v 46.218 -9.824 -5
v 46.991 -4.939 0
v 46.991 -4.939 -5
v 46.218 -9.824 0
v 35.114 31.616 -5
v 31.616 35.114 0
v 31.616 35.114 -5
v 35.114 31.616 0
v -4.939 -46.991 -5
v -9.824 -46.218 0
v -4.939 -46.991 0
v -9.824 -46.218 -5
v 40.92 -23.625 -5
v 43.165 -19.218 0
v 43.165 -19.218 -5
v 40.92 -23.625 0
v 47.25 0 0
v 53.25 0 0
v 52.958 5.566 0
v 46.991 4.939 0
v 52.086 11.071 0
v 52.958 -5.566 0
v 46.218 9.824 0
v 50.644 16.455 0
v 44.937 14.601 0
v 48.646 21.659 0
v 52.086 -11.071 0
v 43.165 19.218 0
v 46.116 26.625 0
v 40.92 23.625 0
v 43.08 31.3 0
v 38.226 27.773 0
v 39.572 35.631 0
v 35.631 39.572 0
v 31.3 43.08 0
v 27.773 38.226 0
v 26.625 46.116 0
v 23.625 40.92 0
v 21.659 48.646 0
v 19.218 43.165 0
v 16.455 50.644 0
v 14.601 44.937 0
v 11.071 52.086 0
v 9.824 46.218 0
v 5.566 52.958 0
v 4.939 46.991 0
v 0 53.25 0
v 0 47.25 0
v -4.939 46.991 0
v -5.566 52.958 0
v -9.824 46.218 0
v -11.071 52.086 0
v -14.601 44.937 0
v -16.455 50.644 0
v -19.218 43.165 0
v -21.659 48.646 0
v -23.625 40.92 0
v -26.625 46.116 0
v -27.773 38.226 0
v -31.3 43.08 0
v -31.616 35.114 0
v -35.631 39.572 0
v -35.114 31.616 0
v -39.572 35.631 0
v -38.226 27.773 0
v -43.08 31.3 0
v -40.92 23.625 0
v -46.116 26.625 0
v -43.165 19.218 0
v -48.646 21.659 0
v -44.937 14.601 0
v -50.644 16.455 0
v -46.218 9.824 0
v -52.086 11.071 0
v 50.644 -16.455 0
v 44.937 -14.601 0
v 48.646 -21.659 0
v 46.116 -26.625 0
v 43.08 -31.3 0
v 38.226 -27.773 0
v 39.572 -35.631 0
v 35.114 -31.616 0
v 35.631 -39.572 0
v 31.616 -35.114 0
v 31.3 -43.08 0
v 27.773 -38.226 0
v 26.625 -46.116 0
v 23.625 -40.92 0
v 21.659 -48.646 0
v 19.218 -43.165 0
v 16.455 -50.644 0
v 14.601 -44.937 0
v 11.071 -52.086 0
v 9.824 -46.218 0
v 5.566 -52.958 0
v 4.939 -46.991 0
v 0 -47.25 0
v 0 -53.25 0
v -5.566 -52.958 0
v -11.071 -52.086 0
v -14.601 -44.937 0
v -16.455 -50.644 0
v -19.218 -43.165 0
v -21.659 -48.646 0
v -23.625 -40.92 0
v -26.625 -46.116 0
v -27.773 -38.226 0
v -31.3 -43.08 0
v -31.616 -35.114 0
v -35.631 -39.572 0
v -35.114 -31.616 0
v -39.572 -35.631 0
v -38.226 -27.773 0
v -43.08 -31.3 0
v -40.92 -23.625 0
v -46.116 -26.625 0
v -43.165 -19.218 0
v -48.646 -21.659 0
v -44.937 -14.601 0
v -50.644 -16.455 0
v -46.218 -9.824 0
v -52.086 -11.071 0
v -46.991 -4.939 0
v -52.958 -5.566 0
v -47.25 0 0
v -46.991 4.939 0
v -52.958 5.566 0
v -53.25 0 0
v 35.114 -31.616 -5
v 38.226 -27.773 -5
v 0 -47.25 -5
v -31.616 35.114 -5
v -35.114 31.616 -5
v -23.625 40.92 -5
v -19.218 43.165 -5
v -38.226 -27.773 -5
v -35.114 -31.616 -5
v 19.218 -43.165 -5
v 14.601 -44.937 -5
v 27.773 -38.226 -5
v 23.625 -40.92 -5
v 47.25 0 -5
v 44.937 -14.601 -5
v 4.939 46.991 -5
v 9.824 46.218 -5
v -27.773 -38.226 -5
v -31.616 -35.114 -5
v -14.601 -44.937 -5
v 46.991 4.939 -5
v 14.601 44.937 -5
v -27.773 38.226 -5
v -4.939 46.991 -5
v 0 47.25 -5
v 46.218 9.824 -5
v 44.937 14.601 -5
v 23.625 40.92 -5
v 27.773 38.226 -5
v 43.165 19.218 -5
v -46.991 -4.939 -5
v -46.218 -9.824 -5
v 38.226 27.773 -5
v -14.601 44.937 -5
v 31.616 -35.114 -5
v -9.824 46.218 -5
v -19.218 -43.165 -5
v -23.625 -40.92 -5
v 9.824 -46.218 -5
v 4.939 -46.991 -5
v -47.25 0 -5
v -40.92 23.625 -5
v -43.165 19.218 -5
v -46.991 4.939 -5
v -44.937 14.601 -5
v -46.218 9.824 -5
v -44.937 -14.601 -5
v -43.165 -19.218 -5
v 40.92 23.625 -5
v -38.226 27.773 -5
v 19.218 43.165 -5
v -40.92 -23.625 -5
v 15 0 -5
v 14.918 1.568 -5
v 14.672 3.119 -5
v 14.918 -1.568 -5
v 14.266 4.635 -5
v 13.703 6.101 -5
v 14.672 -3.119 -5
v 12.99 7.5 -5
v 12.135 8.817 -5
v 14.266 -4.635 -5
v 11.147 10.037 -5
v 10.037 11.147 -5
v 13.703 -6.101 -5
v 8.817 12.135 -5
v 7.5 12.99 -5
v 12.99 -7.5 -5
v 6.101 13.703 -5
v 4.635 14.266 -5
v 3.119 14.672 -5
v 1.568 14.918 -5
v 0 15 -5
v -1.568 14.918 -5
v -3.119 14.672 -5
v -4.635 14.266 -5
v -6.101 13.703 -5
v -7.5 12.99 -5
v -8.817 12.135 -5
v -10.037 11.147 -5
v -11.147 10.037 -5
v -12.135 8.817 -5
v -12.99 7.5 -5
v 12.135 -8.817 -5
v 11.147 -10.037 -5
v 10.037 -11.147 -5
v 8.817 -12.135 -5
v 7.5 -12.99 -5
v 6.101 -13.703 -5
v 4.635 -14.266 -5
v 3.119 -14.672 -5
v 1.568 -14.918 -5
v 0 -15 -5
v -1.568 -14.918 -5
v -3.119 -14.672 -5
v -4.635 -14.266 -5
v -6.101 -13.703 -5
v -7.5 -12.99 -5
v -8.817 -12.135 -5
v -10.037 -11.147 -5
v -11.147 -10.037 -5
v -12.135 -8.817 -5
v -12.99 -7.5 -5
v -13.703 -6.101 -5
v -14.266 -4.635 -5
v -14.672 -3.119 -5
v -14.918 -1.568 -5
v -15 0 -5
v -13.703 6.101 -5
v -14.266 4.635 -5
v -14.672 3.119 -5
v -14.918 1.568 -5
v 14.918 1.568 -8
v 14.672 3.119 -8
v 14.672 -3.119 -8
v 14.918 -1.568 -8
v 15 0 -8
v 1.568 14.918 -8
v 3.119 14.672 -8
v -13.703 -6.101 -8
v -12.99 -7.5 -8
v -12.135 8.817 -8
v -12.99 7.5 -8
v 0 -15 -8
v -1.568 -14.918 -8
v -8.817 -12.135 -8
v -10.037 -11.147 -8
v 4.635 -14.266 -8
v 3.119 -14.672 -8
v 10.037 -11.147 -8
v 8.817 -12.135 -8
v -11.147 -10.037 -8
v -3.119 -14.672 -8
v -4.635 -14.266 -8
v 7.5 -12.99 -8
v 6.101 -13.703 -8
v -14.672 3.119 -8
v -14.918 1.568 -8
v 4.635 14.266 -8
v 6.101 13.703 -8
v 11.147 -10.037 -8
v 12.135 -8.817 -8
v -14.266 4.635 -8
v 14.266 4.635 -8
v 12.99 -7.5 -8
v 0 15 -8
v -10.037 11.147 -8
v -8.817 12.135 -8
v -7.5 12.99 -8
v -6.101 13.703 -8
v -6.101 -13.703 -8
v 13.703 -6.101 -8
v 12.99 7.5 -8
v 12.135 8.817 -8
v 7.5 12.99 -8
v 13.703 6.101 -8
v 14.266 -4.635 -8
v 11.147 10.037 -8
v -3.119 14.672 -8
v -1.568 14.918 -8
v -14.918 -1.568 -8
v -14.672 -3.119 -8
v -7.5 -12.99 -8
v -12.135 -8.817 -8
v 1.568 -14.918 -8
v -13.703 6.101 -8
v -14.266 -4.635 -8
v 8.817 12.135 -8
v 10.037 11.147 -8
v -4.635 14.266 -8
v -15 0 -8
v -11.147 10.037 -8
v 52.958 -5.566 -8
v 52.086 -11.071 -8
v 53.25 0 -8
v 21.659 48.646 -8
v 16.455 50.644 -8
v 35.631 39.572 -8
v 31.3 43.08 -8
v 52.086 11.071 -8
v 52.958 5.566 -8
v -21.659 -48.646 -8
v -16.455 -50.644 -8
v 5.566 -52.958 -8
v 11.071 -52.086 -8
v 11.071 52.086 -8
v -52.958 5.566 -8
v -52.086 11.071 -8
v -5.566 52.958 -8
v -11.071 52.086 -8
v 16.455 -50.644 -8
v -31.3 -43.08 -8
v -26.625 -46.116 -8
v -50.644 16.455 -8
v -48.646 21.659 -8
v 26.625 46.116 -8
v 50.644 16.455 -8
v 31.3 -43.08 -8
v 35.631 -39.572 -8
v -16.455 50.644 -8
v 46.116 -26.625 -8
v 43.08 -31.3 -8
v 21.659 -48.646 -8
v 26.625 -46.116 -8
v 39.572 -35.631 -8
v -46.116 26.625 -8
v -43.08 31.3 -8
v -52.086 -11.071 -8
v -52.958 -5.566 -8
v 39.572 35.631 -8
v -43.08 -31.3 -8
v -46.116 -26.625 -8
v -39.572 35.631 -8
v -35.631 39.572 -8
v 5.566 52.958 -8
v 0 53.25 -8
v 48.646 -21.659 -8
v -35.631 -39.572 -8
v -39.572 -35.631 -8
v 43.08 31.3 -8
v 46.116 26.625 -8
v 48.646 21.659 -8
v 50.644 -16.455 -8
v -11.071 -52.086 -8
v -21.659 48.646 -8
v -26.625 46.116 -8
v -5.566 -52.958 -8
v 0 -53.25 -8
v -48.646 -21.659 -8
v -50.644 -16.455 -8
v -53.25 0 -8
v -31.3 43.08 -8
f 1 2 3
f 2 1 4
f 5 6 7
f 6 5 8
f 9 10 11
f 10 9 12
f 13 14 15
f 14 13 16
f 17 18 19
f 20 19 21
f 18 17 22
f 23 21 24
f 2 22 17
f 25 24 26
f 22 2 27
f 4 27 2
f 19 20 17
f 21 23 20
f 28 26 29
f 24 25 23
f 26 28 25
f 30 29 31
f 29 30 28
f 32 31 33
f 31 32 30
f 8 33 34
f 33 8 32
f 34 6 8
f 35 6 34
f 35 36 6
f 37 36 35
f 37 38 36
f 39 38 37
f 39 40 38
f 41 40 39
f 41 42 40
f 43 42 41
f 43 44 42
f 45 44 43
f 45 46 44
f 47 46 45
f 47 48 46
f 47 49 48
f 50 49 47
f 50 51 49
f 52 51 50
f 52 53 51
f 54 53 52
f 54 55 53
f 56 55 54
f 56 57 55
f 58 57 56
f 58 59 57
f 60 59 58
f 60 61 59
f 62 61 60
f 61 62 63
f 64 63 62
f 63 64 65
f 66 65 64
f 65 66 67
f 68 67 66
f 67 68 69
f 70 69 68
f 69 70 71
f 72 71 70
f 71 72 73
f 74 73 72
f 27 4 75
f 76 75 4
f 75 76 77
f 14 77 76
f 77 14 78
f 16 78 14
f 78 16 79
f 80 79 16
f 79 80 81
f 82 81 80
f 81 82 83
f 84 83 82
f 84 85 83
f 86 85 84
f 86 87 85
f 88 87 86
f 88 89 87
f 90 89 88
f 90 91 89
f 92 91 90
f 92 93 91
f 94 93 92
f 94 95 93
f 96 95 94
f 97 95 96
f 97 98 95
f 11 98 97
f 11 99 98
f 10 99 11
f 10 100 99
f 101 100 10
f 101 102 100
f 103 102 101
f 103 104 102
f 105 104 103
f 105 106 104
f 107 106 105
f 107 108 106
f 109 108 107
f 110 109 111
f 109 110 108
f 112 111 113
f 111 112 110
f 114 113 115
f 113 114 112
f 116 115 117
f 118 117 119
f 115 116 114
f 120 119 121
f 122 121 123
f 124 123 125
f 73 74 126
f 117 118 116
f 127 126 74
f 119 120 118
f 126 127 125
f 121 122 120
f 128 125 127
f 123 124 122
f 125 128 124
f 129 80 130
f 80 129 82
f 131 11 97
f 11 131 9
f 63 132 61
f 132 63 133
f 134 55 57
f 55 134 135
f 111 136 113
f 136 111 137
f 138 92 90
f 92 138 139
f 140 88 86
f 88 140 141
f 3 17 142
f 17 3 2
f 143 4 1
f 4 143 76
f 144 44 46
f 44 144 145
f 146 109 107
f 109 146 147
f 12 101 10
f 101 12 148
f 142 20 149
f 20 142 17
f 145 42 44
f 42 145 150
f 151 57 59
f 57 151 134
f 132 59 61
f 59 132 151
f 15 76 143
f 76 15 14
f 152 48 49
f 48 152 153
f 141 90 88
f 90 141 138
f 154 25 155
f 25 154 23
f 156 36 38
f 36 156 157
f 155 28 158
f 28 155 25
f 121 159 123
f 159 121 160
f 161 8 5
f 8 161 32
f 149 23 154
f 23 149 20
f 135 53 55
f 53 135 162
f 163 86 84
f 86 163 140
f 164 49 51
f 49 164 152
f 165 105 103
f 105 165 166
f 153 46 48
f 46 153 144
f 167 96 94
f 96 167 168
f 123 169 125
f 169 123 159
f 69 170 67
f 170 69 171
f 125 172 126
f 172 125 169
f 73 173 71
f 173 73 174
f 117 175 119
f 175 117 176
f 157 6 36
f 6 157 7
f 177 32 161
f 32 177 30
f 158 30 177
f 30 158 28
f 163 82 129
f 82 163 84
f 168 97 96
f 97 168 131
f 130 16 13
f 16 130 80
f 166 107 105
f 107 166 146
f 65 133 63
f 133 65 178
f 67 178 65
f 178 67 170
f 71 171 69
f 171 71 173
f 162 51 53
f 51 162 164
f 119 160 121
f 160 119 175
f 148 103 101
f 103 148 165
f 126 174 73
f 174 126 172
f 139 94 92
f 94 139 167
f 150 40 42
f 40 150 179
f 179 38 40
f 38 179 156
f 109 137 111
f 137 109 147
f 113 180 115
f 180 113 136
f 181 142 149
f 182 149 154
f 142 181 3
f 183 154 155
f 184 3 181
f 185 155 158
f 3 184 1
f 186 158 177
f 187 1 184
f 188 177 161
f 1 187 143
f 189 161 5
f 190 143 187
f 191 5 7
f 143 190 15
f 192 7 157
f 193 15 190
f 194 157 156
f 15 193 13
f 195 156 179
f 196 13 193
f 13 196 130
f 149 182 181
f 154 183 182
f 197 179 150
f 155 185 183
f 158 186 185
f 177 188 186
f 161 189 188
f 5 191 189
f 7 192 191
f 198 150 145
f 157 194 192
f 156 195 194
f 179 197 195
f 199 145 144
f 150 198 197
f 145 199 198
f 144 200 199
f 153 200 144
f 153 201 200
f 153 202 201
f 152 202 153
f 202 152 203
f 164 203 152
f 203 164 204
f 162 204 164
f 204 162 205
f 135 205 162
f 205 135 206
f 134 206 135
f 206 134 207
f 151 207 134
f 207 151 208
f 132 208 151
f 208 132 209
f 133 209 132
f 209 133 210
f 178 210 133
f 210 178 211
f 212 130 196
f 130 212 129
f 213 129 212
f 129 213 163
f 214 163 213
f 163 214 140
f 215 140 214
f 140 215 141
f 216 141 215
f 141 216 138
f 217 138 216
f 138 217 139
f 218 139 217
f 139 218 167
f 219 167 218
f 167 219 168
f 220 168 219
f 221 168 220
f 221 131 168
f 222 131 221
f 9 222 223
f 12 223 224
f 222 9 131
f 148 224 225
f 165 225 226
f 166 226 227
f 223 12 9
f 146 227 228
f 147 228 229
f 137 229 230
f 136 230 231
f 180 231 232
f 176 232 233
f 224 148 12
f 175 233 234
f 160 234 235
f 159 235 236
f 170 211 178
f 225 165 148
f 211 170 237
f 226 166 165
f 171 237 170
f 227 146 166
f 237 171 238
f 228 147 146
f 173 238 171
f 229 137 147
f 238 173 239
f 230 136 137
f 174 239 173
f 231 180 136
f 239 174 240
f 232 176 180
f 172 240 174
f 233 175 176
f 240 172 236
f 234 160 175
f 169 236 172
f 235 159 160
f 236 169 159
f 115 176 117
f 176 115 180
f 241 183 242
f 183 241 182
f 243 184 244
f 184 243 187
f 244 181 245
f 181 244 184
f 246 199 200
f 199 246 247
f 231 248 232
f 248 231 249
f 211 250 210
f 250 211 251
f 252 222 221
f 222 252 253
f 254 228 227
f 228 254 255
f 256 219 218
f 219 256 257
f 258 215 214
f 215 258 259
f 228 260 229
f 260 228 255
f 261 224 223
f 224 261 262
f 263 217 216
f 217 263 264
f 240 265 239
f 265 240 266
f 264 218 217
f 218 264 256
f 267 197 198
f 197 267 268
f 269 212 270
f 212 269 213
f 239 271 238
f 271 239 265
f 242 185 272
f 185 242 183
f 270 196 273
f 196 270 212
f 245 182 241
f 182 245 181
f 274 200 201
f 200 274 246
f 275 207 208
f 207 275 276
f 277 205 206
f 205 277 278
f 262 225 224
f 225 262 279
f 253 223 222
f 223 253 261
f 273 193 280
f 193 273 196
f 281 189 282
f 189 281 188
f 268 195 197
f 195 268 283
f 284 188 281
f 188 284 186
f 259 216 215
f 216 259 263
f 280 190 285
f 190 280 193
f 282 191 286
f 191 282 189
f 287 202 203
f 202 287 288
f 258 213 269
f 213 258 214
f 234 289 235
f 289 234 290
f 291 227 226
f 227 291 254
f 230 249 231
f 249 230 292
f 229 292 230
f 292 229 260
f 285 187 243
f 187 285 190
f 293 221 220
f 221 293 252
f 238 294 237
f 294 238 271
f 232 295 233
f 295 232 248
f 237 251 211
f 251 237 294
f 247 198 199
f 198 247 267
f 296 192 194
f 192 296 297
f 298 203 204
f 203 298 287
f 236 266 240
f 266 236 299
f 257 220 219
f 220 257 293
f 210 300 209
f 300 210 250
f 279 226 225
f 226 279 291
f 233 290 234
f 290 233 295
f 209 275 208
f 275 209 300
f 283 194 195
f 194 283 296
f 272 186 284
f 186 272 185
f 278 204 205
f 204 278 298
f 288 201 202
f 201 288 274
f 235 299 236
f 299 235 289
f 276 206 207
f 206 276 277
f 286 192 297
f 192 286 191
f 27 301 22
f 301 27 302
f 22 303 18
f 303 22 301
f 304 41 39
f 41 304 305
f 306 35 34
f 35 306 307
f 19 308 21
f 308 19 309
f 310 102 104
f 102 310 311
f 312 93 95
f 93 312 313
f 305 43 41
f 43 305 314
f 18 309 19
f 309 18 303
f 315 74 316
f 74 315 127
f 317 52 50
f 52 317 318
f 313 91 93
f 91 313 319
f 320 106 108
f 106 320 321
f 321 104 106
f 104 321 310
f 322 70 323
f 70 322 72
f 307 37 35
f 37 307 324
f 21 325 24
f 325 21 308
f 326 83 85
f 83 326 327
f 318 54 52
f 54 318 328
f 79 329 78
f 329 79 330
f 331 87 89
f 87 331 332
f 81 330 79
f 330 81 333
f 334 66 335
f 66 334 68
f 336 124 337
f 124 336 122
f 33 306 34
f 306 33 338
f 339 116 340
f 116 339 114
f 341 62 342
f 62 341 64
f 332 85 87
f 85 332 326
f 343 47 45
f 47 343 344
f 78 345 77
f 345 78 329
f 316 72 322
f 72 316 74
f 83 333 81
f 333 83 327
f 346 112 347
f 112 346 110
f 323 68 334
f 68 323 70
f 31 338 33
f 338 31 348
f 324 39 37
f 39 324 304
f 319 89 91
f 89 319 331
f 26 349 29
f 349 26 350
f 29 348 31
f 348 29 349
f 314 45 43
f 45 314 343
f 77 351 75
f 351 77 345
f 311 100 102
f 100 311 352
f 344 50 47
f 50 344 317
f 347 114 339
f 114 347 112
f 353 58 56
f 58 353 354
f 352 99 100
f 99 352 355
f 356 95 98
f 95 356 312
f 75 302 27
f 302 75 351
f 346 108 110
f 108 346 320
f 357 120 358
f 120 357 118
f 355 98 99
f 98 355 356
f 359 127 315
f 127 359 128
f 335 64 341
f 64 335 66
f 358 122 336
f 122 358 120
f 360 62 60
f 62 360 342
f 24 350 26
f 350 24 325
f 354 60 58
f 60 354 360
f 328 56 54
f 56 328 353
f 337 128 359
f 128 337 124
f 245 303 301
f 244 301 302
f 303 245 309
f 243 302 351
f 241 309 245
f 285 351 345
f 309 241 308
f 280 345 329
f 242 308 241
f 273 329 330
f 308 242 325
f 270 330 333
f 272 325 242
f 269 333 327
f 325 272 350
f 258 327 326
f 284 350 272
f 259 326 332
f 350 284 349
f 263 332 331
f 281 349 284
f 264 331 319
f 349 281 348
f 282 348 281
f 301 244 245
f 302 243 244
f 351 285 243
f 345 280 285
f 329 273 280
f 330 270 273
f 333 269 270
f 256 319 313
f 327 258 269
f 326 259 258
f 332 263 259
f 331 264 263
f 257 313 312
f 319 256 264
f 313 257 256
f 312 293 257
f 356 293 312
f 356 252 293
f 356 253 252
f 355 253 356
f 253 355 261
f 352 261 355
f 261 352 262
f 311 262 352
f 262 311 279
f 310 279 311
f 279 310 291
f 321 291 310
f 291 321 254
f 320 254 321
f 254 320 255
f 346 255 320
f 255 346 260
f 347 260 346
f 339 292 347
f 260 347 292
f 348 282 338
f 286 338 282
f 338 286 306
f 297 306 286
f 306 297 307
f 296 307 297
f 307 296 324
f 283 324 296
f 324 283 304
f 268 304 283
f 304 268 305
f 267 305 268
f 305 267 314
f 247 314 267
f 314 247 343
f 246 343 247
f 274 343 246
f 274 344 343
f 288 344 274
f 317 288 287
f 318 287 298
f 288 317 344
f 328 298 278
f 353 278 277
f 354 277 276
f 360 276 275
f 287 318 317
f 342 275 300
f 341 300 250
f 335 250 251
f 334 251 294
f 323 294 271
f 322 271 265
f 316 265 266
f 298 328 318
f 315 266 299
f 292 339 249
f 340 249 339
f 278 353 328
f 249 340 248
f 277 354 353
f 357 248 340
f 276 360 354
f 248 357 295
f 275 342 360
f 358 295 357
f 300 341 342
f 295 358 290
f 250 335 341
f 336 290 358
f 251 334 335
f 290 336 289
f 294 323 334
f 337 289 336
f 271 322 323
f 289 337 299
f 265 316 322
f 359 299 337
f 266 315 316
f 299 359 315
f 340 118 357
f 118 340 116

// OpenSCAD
$fn = 60;
coaster_diameter = 94.5;
coaster_thickness = 5;

module hole(){

	cylinder(h = coaster_thickness, d = coaster_diameter);

	cylinder(h = 15, d = 30);

}

rotate([180, 0, 0]){

	difference(){

		cylinder(h = coaster_thickness + 3, d = coaster_diameter + 12);

		hole();

	}

}
